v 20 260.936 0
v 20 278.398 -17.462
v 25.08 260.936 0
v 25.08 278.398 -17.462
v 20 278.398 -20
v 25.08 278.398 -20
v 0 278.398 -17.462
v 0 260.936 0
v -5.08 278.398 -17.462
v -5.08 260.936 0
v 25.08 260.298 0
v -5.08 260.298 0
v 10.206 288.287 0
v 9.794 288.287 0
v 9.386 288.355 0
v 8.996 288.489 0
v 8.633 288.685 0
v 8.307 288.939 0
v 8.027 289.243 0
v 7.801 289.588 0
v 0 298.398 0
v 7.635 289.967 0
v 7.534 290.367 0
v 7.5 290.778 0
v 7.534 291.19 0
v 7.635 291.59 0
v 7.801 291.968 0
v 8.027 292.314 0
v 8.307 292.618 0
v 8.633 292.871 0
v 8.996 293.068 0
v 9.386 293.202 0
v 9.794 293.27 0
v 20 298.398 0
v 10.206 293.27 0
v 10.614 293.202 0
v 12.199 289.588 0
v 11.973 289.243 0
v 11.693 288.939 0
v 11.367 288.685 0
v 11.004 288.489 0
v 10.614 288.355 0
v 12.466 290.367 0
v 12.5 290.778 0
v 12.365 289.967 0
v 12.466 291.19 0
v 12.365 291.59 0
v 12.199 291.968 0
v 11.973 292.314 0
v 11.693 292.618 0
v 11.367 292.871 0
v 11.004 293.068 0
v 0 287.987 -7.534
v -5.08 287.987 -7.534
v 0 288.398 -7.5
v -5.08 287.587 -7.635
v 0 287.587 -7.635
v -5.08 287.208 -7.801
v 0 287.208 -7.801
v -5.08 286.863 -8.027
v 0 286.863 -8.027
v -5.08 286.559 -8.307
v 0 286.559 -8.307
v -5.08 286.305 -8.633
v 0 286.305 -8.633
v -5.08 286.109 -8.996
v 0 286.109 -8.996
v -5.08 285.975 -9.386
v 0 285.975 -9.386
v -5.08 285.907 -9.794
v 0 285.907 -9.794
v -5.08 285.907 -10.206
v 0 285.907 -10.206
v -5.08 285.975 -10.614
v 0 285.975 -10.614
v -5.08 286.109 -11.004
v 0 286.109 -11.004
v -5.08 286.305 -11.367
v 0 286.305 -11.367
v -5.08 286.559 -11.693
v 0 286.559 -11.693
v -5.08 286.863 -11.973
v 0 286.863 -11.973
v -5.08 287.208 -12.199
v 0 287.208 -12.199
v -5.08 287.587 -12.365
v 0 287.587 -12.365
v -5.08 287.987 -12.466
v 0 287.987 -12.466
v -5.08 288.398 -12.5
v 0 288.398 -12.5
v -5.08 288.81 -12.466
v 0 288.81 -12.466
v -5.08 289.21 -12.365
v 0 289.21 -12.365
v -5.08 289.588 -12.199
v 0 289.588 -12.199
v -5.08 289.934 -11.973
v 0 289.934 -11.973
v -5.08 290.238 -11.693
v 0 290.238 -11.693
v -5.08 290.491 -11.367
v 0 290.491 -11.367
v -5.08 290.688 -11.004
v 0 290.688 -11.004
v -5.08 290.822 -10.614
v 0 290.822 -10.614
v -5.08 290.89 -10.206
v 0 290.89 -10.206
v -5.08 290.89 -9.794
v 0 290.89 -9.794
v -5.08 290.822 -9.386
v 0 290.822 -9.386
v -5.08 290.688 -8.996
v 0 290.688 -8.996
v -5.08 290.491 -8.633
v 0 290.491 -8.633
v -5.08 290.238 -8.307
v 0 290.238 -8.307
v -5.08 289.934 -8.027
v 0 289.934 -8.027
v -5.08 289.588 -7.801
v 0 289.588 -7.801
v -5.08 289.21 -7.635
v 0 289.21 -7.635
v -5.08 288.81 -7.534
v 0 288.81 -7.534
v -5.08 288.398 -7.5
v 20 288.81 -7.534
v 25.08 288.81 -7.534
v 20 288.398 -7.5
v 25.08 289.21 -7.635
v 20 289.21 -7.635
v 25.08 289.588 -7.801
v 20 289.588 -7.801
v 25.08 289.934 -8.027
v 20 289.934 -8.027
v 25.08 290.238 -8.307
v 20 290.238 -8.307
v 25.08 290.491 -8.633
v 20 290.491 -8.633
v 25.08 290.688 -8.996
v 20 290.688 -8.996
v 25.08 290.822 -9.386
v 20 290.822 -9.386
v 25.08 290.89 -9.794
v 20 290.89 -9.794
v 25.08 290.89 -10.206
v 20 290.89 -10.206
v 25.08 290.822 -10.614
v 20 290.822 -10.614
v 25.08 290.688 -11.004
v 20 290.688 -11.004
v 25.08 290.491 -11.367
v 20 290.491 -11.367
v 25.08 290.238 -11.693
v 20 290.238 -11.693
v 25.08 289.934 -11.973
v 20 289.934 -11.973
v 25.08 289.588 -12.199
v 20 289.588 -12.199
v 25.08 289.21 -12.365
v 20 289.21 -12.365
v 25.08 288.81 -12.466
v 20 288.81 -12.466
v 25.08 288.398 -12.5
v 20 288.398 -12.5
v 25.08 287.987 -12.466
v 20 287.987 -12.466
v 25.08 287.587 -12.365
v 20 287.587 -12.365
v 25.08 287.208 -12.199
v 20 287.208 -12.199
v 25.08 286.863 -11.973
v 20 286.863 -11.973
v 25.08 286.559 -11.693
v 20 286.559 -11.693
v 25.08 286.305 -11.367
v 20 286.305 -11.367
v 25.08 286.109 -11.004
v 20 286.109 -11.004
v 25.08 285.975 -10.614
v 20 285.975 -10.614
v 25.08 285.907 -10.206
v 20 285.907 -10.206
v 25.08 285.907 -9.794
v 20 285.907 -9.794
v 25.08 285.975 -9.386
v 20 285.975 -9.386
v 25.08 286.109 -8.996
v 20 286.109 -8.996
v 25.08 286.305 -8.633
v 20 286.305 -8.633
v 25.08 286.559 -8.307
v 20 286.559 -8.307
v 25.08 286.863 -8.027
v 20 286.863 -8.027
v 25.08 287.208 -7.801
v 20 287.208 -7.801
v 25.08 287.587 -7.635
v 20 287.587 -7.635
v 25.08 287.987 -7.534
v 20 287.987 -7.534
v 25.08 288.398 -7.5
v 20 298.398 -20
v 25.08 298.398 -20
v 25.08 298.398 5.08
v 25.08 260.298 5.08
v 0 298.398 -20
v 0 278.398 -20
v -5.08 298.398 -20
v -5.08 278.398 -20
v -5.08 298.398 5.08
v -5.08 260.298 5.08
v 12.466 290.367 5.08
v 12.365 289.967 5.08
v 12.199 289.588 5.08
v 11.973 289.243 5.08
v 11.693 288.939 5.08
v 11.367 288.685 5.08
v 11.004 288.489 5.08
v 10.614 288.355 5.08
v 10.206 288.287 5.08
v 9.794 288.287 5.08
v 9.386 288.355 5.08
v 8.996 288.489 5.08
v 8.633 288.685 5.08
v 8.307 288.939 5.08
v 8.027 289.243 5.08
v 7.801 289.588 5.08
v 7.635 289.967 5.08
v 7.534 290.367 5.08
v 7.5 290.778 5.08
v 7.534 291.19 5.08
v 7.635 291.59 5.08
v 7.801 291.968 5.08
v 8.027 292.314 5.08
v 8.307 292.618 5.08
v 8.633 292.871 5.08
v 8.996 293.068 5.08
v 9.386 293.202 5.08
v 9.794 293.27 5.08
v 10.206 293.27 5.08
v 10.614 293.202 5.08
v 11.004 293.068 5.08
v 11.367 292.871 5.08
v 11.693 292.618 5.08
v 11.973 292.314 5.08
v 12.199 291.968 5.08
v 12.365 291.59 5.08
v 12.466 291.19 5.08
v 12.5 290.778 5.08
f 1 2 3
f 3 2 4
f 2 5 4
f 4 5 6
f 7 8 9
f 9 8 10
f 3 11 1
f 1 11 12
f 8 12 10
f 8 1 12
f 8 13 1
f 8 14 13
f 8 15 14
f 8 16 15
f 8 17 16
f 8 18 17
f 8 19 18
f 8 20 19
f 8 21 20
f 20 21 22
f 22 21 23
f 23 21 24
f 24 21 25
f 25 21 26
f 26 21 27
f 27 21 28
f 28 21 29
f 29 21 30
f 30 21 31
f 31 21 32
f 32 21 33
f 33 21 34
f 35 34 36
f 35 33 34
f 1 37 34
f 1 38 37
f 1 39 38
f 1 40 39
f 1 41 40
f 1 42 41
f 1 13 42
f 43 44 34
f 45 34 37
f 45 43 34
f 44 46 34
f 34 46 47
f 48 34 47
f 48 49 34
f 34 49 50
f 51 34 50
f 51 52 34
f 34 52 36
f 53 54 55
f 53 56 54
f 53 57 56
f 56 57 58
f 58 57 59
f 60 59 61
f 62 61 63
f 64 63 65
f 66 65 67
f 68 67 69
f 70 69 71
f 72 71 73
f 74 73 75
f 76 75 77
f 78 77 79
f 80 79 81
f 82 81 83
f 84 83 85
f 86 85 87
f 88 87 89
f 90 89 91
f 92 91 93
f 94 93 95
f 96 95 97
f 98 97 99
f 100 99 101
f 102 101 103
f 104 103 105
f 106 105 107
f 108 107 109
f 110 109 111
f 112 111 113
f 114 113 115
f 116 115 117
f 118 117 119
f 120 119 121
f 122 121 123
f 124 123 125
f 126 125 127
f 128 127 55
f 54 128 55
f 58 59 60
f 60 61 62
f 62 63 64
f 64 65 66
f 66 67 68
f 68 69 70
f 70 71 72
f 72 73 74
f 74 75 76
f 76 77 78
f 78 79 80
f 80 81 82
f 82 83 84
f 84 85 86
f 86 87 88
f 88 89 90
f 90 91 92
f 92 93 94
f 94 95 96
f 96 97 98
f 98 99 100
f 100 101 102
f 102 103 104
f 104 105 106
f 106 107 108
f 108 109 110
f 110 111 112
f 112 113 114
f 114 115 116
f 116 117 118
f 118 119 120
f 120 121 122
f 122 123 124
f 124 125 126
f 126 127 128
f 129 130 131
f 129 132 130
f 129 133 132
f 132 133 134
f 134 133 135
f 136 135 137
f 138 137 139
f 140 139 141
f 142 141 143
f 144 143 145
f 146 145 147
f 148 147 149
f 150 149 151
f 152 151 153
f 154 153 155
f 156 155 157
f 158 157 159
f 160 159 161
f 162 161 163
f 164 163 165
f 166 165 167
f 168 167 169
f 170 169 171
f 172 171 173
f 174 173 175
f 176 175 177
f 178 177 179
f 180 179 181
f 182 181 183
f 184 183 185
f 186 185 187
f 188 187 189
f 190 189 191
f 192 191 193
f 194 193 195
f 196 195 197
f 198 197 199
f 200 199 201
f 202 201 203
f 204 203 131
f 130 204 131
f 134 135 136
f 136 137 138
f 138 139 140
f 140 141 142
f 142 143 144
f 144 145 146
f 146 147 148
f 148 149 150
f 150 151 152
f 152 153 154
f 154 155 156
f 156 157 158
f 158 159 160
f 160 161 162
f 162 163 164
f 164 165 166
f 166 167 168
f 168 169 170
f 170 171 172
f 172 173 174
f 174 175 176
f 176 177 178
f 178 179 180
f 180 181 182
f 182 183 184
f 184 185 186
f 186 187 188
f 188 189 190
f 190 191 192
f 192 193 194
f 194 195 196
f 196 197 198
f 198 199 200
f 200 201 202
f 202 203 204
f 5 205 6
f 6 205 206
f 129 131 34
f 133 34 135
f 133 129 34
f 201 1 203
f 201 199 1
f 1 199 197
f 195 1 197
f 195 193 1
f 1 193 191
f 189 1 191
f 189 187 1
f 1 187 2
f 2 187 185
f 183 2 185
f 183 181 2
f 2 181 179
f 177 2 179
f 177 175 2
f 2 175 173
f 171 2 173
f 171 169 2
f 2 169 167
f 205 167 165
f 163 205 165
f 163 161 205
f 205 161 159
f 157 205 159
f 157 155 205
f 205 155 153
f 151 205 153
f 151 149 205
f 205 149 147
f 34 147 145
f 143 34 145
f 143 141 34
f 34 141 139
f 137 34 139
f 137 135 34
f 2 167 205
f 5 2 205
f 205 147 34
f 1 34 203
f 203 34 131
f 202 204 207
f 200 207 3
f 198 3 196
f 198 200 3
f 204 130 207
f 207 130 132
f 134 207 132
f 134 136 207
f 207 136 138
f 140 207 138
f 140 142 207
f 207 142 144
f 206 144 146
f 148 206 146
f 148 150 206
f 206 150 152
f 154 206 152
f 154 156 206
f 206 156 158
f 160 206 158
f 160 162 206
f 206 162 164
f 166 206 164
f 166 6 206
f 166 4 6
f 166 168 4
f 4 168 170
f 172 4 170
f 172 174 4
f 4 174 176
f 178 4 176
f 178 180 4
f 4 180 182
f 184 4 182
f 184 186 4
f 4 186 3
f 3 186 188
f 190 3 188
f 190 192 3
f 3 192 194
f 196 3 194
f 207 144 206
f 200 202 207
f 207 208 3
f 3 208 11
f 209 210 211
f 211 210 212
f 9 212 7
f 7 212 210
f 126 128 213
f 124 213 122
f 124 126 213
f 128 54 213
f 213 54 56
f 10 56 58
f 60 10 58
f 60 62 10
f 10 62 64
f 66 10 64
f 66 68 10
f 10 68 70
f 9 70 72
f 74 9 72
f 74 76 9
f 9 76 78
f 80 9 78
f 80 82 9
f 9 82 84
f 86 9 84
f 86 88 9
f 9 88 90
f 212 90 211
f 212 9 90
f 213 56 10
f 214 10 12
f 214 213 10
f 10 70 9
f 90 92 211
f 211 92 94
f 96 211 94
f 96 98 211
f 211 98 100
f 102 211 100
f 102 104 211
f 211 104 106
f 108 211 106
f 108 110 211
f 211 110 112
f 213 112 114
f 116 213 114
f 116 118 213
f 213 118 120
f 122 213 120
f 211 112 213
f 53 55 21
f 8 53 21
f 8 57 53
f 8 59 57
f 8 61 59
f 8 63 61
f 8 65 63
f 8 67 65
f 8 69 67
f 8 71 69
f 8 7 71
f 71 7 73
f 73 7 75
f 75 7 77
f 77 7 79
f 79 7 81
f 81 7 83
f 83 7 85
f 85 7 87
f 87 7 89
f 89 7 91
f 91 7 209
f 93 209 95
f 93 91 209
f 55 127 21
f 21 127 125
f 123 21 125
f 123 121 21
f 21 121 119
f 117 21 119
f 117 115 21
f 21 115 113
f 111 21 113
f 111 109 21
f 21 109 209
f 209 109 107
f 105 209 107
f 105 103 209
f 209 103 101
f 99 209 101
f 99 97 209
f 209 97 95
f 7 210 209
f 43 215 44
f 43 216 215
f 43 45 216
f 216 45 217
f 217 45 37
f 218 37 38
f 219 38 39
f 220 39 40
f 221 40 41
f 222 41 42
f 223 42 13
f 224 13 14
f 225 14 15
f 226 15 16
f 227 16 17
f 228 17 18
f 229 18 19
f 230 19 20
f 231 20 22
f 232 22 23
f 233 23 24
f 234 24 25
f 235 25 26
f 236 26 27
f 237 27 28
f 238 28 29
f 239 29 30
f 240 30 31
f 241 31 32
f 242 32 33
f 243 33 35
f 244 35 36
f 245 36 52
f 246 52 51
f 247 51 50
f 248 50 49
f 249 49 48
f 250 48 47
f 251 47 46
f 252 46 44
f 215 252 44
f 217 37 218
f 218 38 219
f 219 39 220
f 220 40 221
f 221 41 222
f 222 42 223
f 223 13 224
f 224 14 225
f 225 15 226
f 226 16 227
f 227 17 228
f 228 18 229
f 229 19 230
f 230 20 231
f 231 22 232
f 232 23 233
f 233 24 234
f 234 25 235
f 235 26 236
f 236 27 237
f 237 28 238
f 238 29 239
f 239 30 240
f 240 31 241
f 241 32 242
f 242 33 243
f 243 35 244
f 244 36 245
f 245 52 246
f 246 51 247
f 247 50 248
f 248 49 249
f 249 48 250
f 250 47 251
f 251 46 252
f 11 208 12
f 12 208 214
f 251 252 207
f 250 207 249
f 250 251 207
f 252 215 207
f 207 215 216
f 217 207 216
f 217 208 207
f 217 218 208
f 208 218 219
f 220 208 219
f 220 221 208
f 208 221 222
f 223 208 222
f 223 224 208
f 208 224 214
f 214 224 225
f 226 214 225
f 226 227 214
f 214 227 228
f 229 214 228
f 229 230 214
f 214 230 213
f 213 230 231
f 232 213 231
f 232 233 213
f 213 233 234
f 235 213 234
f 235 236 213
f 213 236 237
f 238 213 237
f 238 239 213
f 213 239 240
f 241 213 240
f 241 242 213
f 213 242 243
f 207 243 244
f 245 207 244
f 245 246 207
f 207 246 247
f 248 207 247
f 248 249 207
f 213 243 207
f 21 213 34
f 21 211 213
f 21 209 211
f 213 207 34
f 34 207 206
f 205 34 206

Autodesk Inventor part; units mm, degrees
ref_plane "YZ Plane" through (0, 0, 0) normal (1, 0, 0) x (0, 1, 0)
ref_plane "XZ Plane" through (0, 0, 0) normal (0, 1, 0) x (-1, 0, 0)
ref_plane "XY Plane" through (0, 0, 0) normal (0, 0, 1) x (1, 0, 0)
ref_plane "Work Plane1" through (39.6605, 279.3484, 58.7085) normal (0, 1, 0) x (1, 0, 0)
sketch "Sketch1" plane through (39.6605, 279.3484, 58.7085) normal (0, 1, 0) x (1, 0, 0)
  line L0 (-19.6605, 58.7085) -> (-19.6605, 78.7085) projected
  line L1 (-19.6605, 58.7085) -> (-19.6605, 58.7085) projected
  line L2 (-19.6605, 58.7085) -> (-19.6605, 78.7085) projected
  line L3 (-19.6605, 78.7085) -> (-19.6605, 78.7085) projected
  line L4 (-39.6605, 78.7085) -> (-39.6605, 58.7085) projected
  line L5 (-39.6605, 78.7085) -> (-39.6605, 78.7085) projected
  line L6 (-39.6605, 78.7085) -> (-39.6605, 58.7085) projected
  line L7 (-39.6605, 58.7085) -> (-39.6605, 58.7085) projected
  line L8 (-19.6605, 58.7085) -> (-39.6605, 58.7085)
  line L9 (-39.6605, 58.7085) -> (-39.6605, 53.6285)
  line L10 (-39.6605, 53.6285) -> (-19.6605, 53.6285)
  line L11 (-19.6605, 53.6285) -> (-19.6605, 58.7085)
  dimension "d0" = 5.08
extrude "Extrusion1" add sketch "Sketch1" along normal mid plane 38.1
sketch "Sketch2" plane through (0, 298.3984, 5.08) normal (0, 0, 1) x (1, 0, 0)
  line L0 (20, -38.1) -> (20, 0) projected
  line L1 (0, 0) -> (20, 0) projected
  line L2 (0, -38.1) -> (0, 0) projected
  line L3 (20, -38.1) -> (0, -38.1) projected
  circle A0 centre (10, -7.62) radius 2.5
  point P0 (0, -298.3984)
  dimension "d3" = 5
  dimension "d6" = 7.62
extrude "Extrusion3" cut sketch "Sketch2" against normal blind 38.1 contours A0
sketch "Sketch3" plane through (0, 260.2984, 5.08) normal (-1, 0, 0) x (0, 0, 1)
  line L0 (-25.08, 298.5016) -> (-5.08, 298.5016) projected
  line L1 (-25.08, -260.2984) -> (-25.08, 298.5016) projected
  line L2 (-25.08, -260.2984) -> (-5.08, -260.2984) projected
  line L3 (-5.08, -260.2984) -> (-5.08, 298.5016) projected
  line L4 (0, 0) -> (0, 38.1) projected
  line L5 (-5.08, 38.1) -> (0, 38.1) projected
  line L6 (-5.08, 0) -> (-5.08, 38.1) projected
  line L7 (0, 0) -> (-5.08, 0) projected
  line L8 (0, 38.1) -> (-25.08, 38.1)
  line L9 (-25.08, 38.1) -> (-25.08, 18.1)
  line L10 (-25.08, 18.1) -> (0, 18.1)
  line L11 (0, 18.1) -> (0, 38.1)
  dimension "d11" = 20
extrude "Extrusion4" add sketch "Sketch3" along normal blind 5.08 contours L8 L3 L10 L1 | L5 L4 L10 L3
sketch "Sketch4" plane through (20, 260.2984, 0) normal (1, 0, 0) x (0, 0, -1)
  line L0 (20, 18.1) -> (-5.08, 18.1) projected
  line L1 (-5.08, 18.1) -> (-5.08, 38.1) projected
  line L2 (-5.08, 38.1) -> (20, 38.1) projected
  line L3 (20, 38.1) -> (20, 18.1) projected
  line L4 (-5.08, 18.1) -> (0, 18.1) projected
  line L5 (0, 0) -> (0, 18.1) projected
  line L6 (-5.08, 0) -> (0, 0) projected
  line L7 (-5.08, 0) -> (-5.08, 18.1) projected
  point P0 (0, -260.2984)
extrude "Extrusion5" add sketch "Sketch4" along normal blind 5.08
sketch "Sketch5" plane through (0, 260.2984, 0) normal (-1, 0, 0) x (0, 0, 1)
  line L0 (5.08, 18.1) -> (0, 18.1) projected
  line L1 (0, 0) -> (0, 18.1) projected
  line L2 (5.08, 0) -> (0, 0) projected
  line L3 (5.08, 0) -> (5.08, 18.1) projected
  point P0 (0, -260.2984)
extrude "Extrusion6" add sketch "Sketch5" along normal blind 5.08
sketch "Sketch6" plane through (-5.08, 260.2984, 5.08) normal (-1, 0, 0) x (0, 0, 1)
  line L0 (-25.08, 18.1) -> (-5.08, 18.1) projected
  line L1 (-5.08, 18.1) -> (-5.08, 0) projected
  line L2 (-5.08, 0) -> (0, 0) projected
  line L3 (0, 0) -> (0, 38.1) projected
  line L4 (0, 38.1) -> (-25.08, 38.1) projected
  line L5 (-25.08, 38.1) -> (-25.08, 18.1) projected
  circle A0 centre (-15.08, 28.1) radius 2.5
  point P0 (-5.08, -260.2984)
  dimension "d18" = 5
extrude "Extrusion7" cut sketch "Sketch6" along normal mid plane 2540 contours A0
chamfer "Chamfer1" distance 17.4625 angle 45 2 edges at (-2.54, 278.3984, 0) (22.54, 278.3984, 0)
properties part number "Y belt mount point"
